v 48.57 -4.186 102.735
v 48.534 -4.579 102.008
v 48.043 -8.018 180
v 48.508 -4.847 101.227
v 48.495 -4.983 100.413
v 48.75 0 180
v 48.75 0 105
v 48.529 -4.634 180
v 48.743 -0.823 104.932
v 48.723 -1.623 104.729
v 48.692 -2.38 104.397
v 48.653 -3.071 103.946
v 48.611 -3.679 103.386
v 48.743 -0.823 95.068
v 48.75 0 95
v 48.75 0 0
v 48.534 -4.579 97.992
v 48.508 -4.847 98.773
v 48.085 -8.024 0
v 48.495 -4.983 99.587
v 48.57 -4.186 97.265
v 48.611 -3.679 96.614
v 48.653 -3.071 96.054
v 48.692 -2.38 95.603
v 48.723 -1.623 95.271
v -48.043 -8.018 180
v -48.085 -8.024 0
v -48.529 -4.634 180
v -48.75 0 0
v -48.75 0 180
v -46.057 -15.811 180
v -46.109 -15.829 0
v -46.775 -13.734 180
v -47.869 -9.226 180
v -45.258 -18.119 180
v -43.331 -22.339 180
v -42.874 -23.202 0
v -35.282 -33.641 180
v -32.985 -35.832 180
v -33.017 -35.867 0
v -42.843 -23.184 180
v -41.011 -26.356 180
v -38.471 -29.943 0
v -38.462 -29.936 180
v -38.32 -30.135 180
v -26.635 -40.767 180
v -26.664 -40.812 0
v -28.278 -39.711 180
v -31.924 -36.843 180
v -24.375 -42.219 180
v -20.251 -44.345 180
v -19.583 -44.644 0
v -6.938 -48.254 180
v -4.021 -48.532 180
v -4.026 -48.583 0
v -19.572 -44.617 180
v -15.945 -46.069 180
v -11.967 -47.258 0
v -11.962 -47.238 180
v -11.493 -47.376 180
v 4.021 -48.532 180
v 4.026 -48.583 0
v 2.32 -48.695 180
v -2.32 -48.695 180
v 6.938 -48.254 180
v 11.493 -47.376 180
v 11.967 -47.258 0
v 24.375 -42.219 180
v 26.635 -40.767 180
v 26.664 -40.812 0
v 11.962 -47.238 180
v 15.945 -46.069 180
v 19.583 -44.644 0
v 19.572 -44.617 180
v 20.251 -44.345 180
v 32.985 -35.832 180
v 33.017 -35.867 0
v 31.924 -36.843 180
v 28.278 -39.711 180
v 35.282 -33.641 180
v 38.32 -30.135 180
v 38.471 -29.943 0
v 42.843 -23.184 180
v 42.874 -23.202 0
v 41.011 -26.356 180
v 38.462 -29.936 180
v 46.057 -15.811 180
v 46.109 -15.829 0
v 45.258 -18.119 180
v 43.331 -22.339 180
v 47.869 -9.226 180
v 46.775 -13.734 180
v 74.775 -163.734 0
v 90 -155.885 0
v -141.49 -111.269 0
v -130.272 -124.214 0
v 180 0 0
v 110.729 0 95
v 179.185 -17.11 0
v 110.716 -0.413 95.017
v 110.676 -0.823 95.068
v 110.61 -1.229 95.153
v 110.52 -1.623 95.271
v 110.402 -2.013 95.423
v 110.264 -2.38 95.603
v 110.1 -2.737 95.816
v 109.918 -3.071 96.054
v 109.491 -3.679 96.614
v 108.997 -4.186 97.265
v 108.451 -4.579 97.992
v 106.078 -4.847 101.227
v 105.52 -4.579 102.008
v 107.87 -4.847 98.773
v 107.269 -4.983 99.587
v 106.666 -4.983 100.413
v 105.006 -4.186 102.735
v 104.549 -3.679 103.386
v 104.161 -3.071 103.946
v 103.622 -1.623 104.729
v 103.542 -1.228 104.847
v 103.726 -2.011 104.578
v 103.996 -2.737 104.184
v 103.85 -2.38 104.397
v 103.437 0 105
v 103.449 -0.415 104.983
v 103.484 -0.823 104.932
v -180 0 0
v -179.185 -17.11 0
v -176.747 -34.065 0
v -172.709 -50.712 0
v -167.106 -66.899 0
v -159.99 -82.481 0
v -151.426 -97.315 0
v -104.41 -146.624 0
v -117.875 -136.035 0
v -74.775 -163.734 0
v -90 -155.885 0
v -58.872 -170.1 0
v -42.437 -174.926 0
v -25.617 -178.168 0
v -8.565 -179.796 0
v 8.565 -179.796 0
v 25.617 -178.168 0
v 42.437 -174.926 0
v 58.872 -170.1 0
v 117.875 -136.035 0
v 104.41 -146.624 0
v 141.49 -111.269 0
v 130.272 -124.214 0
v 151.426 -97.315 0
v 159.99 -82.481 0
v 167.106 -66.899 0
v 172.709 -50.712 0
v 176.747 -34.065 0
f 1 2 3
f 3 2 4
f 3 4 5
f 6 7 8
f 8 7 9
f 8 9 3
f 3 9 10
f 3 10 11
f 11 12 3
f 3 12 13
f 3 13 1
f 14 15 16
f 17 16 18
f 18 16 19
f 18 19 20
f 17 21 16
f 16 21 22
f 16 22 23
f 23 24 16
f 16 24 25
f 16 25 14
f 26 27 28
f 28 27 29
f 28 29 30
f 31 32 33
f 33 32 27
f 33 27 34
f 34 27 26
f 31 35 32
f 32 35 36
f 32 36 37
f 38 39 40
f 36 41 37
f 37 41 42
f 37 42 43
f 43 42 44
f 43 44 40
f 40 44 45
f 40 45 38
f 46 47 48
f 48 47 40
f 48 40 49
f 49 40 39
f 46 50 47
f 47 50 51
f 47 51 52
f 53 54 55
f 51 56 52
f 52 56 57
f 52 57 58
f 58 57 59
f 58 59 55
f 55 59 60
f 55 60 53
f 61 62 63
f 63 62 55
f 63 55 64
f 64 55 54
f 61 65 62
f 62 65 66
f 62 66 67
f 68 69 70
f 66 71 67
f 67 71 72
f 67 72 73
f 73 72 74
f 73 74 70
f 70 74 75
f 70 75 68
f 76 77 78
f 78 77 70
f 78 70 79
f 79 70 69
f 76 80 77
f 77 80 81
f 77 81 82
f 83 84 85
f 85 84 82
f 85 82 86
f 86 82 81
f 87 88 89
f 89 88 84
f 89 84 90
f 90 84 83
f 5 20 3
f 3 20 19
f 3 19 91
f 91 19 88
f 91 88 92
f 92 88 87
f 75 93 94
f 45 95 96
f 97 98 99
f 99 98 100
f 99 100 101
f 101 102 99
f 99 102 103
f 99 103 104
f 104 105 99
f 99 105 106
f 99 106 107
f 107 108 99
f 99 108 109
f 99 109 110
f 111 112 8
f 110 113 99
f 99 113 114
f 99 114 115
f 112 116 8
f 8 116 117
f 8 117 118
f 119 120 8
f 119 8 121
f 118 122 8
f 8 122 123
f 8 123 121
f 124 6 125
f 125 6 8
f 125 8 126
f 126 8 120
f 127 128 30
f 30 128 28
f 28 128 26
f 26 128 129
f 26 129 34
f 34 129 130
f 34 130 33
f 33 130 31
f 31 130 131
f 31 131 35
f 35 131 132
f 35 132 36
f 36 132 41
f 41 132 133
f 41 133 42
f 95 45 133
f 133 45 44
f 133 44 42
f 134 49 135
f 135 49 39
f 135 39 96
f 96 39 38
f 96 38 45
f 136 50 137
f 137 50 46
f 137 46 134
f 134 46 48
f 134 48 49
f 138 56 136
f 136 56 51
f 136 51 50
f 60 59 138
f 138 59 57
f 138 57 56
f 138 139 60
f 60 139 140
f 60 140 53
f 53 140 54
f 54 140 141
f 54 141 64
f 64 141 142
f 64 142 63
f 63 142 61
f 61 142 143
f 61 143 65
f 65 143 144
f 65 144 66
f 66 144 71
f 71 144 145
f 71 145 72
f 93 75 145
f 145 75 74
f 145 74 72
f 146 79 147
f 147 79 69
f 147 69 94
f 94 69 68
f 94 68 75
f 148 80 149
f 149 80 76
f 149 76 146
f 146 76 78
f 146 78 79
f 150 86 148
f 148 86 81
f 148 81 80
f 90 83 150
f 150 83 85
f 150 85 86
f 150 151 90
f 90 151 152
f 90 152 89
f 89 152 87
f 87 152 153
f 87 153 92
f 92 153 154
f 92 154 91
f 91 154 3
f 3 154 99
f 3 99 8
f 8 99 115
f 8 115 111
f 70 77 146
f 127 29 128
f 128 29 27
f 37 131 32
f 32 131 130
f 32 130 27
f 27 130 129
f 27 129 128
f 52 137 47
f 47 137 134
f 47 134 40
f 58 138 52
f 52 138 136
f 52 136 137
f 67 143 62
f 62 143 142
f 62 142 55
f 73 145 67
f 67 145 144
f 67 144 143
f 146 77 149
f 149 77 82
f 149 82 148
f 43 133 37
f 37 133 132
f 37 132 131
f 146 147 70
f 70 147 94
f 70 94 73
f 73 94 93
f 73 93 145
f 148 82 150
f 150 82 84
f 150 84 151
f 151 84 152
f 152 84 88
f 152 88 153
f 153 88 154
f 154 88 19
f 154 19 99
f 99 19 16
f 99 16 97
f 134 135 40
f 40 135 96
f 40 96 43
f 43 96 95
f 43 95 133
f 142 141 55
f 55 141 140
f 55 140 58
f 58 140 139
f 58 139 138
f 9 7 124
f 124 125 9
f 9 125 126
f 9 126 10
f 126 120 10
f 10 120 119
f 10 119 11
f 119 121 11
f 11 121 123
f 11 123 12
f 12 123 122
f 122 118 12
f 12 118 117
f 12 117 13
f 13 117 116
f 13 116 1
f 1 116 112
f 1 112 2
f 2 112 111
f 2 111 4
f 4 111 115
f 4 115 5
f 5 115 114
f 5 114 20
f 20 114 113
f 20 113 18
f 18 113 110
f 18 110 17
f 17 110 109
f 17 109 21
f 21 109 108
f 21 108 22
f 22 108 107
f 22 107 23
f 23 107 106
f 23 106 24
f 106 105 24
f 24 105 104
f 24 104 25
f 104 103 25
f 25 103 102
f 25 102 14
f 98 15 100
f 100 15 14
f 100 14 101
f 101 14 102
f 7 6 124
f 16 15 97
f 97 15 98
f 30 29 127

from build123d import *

# Parameters (mm, degrees)
ENL_V_MAT_EXTRU_1_REACH = 313.769
ESQUISSE7_R             = 5


with BuildPart() as part:
    # Esquisse4 → Révolution1 (revolve)
    with BuildSketch(Plane(origin=(0, 0, 0), x_dir=(0, 0, -1), z_dir=(1, 0, 0)), mode=Mode.PRIVATE) as r_volution1_sk:
        Polygon((-180, 48.75), (0, 180), (0, 48.75), align=None)
    revolve(r_volution1_sk.sketch.rotate(Axis((0, 0, 180), (0, 0, -1)), 90), axis=Axis((0, 0, 180), (0, 0, -1)))

    # Enlèv. mat.-Extru.1: up to this cone (the profile starts inside it)
    enl_v_mat_extru_1_end = Plane(origin=(0, 0, 100), z_dir=(0, 0, -1)).offset(-146.857141857) * Cone(1e-06, 414.319409722, 568.20947519, align=(Align.CENTER, Align.CENTER, Align.MIN), mode=Mode.PRIVATE)
    # Esquisse7 → Enlèv. mat.-Extru.1 (cut, up to the surface)
    with BuildSketch(Plane(origin=(0, 0, 0), x_dir=(0, 0, -1), z_dir=(1, 0, 0)), mode=Mode.PRIVATE) as enl_v_mat_extru_1_sk1:
        with Locations(Location((-100, 0, 0), (0, 0, 180))):
            Circle(ESQUISSE7_R)
    enl_v_mat_extru_1_tool1 = extrude(enl_v_mat_extru_1_sk1.sketch, amount=ENL_V_MAT_EXTRU_1_REACH, mode=Mode.PRIVATE) & enl_v_mat_extru_1_end
    add(enl_v_mat_extru_1_tool1.solids().sort_by_distance((0, 0, 100))[0], mode=Mode.SUBTRACT)

    # Enlèv. mat.-Surface1
    split(bisect_by=Plane(origin=(0, 0, 0), x_dir=(1, 0, 0), z_dir=(0, 1, 0)), keep=Keep.BOTTOM)


solid = part.part
